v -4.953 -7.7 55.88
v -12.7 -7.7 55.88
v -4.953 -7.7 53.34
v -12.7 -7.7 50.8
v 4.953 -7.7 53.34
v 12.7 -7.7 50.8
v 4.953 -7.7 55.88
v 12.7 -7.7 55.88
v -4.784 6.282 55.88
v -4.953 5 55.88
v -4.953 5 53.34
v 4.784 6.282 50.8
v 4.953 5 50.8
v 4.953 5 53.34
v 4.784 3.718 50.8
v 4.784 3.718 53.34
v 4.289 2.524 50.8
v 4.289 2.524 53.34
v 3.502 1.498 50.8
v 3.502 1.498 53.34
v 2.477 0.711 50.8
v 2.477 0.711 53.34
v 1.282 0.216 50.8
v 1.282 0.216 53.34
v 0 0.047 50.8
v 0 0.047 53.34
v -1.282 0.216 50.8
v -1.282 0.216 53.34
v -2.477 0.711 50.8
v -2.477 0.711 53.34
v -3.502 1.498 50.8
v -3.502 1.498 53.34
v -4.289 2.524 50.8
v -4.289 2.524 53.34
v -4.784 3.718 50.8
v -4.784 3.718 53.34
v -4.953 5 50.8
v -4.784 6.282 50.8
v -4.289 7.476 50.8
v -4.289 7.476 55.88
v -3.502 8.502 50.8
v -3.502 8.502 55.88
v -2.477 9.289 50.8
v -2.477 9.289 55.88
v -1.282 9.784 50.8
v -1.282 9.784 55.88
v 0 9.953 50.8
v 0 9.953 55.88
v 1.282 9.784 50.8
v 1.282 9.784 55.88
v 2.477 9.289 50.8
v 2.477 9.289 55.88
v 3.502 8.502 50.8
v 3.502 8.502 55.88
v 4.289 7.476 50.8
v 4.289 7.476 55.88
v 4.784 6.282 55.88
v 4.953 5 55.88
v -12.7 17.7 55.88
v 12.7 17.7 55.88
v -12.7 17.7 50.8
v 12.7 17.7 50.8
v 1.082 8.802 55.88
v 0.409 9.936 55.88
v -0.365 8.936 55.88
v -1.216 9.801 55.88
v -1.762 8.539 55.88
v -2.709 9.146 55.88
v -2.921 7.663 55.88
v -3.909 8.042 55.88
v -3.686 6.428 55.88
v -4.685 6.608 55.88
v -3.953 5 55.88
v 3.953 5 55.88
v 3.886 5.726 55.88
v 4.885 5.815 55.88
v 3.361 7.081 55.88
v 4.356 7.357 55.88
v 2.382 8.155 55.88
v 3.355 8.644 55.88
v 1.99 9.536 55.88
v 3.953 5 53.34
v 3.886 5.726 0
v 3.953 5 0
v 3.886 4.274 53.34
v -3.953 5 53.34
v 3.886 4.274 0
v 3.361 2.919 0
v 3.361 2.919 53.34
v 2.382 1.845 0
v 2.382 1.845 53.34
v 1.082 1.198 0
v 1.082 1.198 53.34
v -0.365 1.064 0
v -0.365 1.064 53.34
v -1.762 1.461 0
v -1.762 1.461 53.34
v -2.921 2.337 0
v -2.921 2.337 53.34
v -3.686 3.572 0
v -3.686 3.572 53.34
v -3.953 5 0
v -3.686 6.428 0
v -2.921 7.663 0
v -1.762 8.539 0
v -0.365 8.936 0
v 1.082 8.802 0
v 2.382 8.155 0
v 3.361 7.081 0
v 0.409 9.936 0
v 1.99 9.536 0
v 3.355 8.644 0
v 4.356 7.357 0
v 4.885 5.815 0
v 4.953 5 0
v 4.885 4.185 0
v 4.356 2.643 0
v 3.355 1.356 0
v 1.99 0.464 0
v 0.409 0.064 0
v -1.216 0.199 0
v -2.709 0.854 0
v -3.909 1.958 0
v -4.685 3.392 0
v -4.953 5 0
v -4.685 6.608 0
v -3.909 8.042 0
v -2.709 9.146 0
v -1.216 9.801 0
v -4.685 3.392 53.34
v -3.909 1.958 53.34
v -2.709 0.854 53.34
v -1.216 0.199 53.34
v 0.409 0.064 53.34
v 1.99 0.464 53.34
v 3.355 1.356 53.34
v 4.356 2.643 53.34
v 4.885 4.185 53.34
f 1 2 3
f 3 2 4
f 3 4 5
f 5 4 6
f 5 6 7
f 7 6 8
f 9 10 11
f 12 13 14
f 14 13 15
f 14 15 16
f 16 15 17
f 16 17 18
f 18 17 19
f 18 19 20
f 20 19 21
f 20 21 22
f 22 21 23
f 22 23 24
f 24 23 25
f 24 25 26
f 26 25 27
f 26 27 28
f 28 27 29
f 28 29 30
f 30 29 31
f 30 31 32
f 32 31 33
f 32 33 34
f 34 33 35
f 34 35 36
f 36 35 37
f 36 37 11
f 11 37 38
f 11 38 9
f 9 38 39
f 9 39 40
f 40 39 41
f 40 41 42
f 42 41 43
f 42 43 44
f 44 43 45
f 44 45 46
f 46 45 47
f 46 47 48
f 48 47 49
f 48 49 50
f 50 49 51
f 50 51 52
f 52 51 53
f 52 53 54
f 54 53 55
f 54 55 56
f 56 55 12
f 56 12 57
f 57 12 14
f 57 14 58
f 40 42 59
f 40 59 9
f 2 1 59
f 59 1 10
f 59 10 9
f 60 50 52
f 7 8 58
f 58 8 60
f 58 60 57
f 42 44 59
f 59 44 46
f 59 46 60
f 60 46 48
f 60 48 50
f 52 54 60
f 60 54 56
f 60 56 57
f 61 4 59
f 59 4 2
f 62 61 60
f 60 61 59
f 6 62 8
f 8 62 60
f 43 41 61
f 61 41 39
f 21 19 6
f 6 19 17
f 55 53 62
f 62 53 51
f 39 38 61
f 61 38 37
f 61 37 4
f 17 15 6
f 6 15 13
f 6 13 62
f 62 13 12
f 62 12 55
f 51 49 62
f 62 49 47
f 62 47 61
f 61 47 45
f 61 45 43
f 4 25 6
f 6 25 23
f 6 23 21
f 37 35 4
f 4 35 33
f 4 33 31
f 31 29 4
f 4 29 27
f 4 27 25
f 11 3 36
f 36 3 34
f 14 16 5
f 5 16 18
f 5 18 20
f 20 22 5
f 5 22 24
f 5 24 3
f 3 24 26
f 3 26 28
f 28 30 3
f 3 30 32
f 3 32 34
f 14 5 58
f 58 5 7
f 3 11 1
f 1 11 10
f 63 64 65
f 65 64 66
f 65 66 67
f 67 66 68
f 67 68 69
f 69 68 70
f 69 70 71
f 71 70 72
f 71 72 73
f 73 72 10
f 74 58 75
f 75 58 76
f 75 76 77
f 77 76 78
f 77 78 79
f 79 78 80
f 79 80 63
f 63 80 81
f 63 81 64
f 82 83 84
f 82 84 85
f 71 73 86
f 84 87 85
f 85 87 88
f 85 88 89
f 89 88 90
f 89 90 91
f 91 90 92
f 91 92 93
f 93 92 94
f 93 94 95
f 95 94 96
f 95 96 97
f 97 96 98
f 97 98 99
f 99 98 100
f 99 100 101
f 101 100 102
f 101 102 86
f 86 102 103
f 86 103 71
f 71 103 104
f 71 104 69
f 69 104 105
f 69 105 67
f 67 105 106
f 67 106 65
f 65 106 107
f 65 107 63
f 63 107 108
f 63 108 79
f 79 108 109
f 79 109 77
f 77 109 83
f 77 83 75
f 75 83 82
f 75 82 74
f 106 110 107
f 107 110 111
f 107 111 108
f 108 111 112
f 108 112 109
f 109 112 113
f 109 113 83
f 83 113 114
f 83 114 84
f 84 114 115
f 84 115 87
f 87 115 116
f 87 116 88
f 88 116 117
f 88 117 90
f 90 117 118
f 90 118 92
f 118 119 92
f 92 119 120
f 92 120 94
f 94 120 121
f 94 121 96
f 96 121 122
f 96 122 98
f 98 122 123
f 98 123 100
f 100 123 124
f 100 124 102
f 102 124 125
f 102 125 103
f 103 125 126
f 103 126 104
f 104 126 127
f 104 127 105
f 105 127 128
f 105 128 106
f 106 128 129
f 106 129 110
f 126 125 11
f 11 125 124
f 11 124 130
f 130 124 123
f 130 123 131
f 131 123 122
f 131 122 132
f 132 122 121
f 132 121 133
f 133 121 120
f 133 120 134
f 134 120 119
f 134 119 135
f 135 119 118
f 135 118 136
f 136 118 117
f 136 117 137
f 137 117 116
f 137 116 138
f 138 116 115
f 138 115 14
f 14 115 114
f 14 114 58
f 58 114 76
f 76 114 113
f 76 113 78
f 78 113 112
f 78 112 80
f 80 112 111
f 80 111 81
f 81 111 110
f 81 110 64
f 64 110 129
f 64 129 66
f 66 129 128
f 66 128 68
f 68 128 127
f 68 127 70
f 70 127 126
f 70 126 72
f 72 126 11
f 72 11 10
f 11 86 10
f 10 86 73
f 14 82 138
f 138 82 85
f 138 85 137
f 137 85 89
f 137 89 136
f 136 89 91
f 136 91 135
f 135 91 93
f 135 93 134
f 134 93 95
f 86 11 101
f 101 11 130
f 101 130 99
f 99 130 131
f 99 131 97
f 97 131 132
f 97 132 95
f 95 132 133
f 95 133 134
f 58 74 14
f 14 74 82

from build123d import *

# Parameters (mm, degrees)
SKETCH1_R           = 4.953
SKETCH1_R_2         = 3.953
BOSS_EXTRUDE1_DEPTH = 55.88
SKETCH2_W           = 25.4
SKETCH2_H           = 25.4
SKETCH2_R           = 4.953
BOSS_EXTRUDE2_DEPTH = 5.08
SKETCH4_W           = 9.906
SKETCH4_H           = 12.7
CUT_EXTRUDE1_DEPTH  = 2.54


with BuildPart() as part:
    # Sketch1 → Boss-Extrude1 (new body)
    with BuildSketch(Plane.XY):
        with Locations((0, 5)):
            Circle(SKETCH1_R)
        with Locations((0, 5)):
            Circle(SKETCH1_R_2, mode=Mode.SUBTRACT)
    extrude(amount=BOSS_EXTRUDE1_DEPTH)


with BuildPart() as body_2:
    # Sketch2 → Boss-Extrude2 (new body)
    with BuildSketch(Plane.XY.offset(55.88)):
        with Locations((0, 5)):
            Rectangle(SKETCH2_W, SKETCH2_H)
        with Locations((0, 5)):
            Circle(SKETCH2_R, mode=Mode.SUBTRACT)
    extrude(amount=-BOSS_EXTRUDE2_DEPTH)


with BuildPart() as cut_extrude1_tool:
    # Sketch4 → Cut-Extrude1 (new body)
    with BuildSketch(Plane(origin=(0, 0, 55.88), x_dir=(-1, 0, 0), z_dir=(0, 0, -1))):
        with Locations((0, -1.35)):
            Rectangle(SKETCH4_W, SKETCH4_H)
    extrude(amount=CUT_EXTRUDE1_DEPTH)


with BuildPart() as part_1:
    add(part.part)

    # Cut-Extrude1: cut by cut_extrude1_tool
    add(cut_extrude1_tool.part, mode=Mode.SUBTRACT)


with BuildPart() as body_2_1:
    add(body_2.part)

    # Cut-Extrude1: cut by cut_extrude1_tool
    add(cut_extrude1_tool.part, mode=Mode.SUBTRACT)


solid = Compound([part_1.part, body_2_1.part])
